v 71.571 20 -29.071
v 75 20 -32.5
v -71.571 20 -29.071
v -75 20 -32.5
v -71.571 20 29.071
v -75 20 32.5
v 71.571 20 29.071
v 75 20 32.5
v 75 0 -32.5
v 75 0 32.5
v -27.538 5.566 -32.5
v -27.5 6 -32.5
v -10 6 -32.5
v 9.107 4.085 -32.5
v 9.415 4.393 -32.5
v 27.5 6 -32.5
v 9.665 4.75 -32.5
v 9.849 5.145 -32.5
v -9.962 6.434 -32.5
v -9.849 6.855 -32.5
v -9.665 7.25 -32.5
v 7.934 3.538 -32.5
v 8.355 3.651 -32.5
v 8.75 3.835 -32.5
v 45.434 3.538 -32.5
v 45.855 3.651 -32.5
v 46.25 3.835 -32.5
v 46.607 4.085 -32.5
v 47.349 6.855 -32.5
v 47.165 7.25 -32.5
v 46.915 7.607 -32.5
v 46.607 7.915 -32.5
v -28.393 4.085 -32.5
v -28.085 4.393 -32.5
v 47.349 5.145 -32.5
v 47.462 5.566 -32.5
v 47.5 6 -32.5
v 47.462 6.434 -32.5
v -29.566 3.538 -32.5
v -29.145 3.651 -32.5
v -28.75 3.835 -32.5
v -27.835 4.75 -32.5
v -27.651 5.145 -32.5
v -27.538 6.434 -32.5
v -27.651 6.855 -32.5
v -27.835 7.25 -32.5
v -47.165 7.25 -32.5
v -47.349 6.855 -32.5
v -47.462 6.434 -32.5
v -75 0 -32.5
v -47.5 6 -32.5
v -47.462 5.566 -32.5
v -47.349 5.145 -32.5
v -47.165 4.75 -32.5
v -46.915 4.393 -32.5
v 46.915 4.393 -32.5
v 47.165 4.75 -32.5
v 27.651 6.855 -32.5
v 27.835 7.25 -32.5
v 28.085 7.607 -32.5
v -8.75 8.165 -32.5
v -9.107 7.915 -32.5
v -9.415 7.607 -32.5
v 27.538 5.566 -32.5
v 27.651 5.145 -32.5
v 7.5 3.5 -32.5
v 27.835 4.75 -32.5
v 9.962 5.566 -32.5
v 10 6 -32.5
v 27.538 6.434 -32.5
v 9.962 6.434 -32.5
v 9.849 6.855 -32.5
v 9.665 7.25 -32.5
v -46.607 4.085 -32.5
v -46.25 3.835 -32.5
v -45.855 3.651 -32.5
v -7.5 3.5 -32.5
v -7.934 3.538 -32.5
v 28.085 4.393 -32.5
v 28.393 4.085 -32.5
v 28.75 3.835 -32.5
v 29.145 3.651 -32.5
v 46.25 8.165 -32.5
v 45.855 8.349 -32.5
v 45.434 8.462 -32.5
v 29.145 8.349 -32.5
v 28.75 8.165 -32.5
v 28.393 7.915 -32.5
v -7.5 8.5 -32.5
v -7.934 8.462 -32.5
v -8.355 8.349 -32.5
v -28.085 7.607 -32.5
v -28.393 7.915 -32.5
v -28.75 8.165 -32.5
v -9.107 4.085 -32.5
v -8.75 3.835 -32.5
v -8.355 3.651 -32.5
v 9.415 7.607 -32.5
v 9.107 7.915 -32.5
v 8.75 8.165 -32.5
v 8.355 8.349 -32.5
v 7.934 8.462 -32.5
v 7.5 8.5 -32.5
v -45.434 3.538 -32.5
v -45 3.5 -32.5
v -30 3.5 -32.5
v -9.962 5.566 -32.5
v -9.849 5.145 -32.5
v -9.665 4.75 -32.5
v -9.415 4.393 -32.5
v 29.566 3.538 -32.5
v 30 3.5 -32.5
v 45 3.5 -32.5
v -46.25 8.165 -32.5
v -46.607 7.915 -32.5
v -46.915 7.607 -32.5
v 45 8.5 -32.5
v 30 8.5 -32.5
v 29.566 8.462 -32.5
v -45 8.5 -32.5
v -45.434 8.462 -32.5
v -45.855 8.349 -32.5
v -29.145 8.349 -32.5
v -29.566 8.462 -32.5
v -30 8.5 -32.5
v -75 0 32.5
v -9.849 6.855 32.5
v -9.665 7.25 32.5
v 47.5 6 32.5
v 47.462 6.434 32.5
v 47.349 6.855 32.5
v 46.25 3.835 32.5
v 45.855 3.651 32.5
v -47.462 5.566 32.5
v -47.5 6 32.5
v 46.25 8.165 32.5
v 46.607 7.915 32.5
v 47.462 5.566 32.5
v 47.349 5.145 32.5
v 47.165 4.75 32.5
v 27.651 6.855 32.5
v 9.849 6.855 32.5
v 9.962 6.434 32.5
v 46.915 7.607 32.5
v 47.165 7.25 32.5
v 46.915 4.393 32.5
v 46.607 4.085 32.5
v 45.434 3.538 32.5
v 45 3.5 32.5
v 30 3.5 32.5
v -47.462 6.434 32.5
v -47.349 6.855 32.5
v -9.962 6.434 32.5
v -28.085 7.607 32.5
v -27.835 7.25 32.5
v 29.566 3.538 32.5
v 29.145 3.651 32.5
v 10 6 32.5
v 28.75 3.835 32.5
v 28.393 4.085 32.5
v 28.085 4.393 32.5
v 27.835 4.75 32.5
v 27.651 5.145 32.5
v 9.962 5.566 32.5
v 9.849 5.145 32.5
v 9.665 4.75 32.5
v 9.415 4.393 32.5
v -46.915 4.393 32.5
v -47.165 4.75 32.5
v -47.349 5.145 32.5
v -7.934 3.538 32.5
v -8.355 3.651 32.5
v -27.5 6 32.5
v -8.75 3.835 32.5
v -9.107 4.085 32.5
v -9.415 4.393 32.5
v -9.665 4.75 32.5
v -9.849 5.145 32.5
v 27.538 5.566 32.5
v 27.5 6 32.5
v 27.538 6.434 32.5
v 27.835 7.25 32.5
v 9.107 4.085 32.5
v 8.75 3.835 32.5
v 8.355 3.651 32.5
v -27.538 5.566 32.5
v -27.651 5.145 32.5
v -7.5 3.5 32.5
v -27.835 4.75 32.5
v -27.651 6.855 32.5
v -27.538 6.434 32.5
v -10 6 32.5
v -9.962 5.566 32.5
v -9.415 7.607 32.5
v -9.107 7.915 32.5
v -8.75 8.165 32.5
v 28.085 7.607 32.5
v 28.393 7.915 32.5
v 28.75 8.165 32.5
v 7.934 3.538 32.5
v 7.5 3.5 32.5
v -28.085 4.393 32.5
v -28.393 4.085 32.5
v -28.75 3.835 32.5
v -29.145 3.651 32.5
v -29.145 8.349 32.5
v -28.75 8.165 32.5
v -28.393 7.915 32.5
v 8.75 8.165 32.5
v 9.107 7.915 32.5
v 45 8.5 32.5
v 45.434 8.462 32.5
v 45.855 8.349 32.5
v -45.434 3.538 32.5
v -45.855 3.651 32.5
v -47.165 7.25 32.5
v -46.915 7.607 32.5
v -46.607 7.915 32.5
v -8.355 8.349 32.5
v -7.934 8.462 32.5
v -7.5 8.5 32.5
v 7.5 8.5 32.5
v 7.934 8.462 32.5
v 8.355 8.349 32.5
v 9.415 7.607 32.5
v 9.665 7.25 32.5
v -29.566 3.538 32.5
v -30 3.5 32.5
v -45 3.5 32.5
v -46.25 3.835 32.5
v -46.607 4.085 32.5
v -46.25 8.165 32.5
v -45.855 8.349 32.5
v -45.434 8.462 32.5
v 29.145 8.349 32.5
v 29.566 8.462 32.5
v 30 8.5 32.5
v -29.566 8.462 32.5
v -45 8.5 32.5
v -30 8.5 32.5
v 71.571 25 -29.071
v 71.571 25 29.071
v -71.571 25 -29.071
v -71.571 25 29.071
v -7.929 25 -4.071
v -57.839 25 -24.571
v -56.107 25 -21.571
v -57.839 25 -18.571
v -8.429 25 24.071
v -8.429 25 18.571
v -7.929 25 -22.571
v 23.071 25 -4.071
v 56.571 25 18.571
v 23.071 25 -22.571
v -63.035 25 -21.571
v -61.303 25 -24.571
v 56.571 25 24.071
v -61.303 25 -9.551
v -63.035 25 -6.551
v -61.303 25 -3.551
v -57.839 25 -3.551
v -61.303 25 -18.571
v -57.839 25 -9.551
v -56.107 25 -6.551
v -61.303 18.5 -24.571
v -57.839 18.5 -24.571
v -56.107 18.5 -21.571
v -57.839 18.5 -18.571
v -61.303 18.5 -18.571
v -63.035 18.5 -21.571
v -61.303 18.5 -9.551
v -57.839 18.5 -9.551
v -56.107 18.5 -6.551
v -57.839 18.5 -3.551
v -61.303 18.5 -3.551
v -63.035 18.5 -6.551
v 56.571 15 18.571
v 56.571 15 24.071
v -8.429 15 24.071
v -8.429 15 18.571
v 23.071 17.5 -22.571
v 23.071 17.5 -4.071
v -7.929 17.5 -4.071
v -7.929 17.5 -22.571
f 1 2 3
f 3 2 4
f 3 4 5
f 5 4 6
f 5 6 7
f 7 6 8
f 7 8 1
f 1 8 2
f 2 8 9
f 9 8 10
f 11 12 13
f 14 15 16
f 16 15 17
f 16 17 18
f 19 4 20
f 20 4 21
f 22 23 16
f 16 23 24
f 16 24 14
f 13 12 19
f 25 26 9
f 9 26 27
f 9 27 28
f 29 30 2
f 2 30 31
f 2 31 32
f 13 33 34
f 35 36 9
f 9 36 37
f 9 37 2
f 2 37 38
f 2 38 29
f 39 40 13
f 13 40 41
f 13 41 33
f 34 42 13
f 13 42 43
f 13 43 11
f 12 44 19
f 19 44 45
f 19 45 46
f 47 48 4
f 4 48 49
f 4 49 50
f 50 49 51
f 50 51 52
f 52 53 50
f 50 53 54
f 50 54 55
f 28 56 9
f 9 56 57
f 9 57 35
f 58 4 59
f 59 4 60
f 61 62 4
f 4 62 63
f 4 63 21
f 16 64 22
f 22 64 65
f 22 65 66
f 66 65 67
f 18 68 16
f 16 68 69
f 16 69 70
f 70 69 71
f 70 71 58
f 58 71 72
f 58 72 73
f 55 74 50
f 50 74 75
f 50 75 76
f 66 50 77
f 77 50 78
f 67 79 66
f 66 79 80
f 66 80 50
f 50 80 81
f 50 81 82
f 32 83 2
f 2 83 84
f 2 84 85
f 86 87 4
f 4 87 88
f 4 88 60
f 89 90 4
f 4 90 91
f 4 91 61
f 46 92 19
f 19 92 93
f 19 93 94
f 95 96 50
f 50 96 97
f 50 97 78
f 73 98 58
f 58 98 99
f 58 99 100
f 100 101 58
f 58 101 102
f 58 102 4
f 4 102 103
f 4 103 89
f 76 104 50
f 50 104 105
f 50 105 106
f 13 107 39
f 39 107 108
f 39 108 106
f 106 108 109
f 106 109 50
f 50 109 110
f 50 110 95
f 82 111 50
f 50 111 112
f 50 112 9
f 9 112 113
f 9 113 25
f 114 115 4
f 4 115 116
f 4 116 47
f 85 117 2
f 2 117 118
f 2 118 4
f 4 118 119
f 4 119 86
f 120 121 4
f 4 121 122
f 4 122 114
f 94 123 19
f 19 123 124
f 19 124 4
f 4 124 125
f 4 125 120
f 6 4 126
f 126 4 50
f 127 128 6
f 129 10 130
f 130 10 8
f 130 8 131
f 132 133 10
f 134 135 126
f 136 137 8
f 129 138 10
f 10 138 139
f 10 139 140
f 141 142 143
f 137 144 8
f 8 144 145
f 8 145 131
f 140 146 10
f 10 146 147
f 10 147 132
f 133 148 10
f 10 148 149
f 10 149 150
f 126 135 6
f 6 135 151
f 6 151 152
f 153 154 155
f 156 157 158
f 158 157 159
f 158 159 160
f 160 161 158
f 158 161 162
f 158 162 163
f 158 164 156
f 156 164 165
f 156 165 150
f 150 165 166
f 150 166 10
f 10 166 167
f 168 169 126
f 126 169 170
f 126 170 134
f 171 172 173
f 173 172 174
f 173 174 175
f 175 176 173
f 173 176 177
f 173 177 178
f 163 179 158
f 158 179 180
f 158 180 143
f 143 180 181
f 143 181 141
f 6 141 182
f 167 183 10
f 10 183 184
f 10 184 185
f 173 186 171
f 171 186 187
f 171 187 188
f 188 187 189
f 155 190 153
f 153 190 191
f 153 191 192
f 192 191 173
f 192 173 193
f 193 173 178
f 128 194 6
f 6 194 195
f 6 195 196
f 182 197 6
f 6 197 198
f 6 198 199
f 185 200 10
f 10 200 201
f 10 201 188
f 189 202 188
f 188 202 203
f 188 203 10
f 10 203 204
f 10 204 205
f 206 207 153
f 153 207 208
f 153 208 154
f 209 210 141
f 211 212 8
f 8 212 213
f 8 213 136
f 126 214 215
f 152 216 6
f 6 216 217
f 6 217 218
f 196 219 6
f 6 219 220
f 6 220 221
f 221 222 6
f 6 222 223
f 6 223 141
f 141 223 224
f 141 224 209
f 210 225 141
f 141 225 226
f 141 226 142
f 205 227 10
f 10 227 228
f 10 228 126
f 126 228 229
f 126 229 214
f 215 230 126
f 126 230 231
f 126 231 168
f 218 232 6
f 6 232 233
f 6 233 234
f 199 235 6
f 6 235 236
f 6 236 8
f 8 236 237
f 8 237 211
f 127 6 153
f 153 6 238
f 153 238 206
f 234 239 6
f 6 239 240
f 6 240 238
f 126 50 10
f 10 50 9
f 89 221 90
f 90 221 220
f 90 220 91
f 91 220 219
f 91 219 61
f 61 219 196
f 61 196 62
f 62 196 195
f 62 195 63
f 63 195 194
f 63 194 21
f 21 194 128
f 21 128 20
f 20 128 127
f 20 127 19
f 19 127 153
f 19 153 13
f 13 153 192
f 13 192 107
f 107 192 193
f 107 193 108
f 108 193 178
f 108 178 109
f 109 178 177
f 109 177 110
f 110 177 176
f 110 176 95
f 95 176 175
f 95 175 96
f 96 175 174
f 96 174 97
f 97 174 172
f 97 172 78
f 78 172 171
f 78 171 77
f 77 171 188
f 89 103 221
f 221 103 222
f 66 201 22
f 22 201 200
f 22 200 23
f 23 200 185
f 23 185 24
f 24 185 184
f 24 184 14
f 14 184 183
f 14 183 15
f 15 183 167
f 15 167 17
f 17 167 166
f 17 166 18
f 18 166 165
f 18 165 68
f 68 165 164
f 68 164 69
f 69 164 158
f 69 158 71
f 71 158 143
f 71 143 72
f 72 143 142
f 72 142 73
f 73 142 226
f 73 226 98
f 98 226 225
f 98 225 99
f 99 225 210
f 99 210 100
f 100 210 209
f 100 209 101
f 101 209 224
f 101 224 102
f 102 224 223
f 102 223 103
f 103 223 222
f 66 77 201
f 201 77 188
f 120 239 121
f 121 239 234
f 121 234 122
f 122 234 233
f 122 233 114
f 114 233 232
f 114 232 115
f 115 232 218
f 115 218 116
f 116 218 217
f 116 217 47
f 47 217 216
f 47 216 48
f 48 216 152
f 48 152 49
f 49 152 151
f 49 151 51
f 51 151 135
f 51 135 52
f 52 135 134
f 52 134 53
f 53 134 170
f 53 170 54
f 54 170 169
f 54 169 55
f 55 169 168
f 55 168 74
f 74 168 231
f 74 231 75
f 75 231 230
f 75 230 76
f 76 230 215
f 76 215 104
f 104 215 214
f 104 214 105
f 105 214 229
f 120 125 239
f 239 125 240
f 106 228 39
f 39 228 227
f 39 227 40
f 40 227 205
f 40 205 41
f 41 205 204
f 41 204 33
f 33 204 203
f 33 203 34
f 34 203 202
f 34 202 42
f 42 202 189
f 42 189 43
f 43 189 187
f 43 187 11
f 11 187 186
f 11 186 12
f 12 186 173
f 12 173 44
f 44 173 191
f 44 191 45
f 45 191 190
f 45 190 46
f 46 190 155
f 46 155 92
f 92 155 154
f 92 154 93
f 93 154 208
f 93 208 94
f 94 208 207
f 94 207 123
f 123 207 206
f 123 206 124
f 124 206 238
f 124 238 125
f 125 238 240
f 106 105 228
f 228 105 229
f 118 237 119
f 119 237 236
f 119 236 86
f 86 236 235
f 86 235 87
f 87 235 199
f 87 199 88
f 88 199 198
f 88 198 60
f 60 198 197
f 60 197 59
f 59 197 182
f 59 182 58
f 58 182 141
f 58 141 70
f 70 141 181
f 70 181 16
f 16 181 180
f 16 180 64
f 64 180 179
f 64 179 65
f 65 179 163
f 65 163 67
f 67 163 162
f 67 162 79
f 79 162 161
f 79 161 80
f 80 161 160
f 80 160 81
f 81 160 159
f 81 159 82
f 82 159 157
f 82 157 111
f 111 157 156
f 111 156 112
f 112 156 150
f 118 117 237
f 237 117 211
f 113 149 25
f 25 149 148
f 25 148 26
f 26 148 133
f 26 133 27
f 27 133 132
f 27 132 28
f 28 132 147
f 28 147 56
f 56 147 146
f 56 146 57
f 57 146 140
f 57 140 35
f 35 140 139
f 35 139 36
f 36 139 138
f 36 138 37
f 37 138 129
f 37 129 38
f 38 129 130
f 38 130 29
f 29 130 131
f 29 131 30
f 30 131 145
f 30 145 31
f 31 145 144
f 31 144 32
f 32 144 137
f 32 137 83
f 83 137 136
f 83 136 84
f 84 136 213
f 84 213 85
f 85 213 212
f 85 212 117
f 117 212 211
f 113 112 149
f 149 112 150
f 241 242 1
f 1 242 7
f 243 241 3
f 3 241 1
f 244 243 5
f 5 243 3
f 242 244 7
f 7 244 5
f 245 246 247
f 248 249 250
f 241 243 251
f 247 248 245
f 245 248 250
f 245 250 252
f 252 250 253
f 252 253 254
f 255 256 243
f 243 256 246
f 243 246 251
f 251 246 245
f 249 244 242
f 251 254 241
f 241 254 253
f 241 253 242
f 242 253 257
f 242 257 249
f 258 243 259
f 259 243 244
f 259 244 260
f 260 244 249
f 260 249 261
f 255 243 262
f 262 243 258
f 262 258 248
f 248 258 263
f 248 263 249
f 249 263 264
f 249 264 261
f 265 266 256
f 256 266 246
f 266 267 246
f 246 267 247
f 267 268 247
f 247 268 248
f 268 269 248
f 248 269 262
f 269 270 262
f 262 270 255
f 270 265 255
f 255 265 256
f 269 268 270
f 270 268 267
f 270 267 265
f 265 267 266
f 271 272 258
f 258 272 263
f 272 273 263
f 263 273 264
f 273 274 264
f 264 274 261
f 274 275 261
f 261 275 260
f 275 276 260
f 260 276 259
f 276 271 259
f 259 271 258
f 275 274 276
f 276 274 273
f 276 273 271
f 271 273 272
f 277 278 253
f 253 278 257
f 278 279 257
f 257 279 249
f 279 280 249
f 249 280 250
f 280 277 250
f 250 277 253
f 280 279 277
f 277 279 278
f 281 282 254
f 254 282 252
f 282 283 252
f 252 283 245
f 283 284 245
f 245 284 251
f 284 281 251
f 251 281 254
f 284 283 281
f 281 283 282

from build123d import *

# Parameters (mm, degrees)
SKETCH1_W           = 150
SKETCH1_H           = 65
BOSS_EXTRUDE1_DEPTH = 20
CUT_EXTRUDE1_DEPTH  = 66
SKETCH3_W           = 143.142
SKETCH3_H           = 58.142
BOSS_EXTRUDE2_DEPTH = 5
CUT_EXTRUDE2_DEPTH  = 6.5
SKETCH6_W           = 65
SKETCH6_H           = 5.5
CUT_EXTRUDE3_DEPTH  = 10
SKETCH7_W           = 31
SKETCH7_H           = 18.5
CUT_EXTRUDE4_DEPTH  = 7.5


with BuildPart() as part:
    # Sketch1 → Boss-Extrude1 (new body)
    with BuildSketch(Plane(origin=(0, 0, 0), x_dir=(1, 0, 0), z_dir=(0, 1, 0))):
        Rectangle(SKETCH1_W, SKETCH1_H)
    extrude(amount=BOSS_EXTRUDE1_DEPTH)

    # Sketch2 → Cut-Extrude1 (cut, through all)
    with BuildSketch(Plane.XY.offset(32.5)):
        with BuildLine():
            Line((-7.5, 8.5), (7.5, 8.5))
            ThreePointArc((7.5, 8.5), (10, 6), (7.5, 3.5))
            Line((7.5, 3.5), (-7.5, 3.5))
            ThreePointArc((-7.5, 3.5), (-10, 6), (-7.5, 8.5))
        make_face()
        with BuildLine():
            Line((-45, 8.5), (-30, 8.5))
            ThreePointArc((-30, 8.5), (-27.5, 6), (-30, 3.5))
            Line((-30, 3.5), (-45, 3.5))
            ThreePointArc((-45, 3.5), (-47.5, 6), (-45, 8.5))
        make_face()
        with BuildLine():
            Line((30, 8.5), (45, 8.5))
            ThreePointArc((45, 8.5), (47.5, 6), (45, 3.5))
            Line((45, 3.5), (30, 3.5))
            ThreePointArc((30, 3.5), (27.5, 6), (30, 8.5))
        make_face()
    extrude(amount=-CUT_EXTRUDE1_DEPTH, mode=Mode.SUBTRACT)

    # Sketch3 → Boss-Extrude2 (add)
    with BuildSketch(Plane(origin=(0, 20, 0), x_dir=(1, 0, 0), z_dir=(0, 1, 0))):
        Rectangle(SKETCH3_W, SKETCH3_H)
    extrude(amount=BOSS_EXTRUDE2_DEPTH)

    # Sketch4 → Cut-Extrude2 (cut)
    with BuildSketch(Plane(origin=(0, 25, 0), x_dir=(1, 0, 0), z_dir=(0, 1, 0))):
        Polygon((-61.303050808, 24.571), (-63.035101615, 21.571), (-61.303050808, 18.571), (-57.838949192, 18.571), (-56.106898385, 21.571), (-57.838949192, 24.571), align=None)
        Polygon((-61.303050808, 9.551), (-63.035101615, 6.551), (-61.303050808, 3.551), (-57.838949192, 3.551), (-56.106898385, 6.551), (-57.838949192, 9.551), align=None)
    extrude(amount=-CUT_EXTRUDE2_DEPTH, mode=Mode.SUBTRACT)

    # Sketch6 → Cut-Extrude3 (cut)
    with BuildSketch(Plane(origin=(0, 25, 0), x_dir=(1, 0, 0), z_dir=(0, 1, 0))):
        with Locations((24.071, -21.321)):
            Rectangle(SKETCH6_W, SKETCH6_H)
    extrude(amount=-CUT_EXTRUDE3_DEPTH, mode=Mode.SUBTRACT)

    # Sketch7 → Cut-Extrude4 (cut)
    with BuildSketch(Plane(origin=(0, 25, 0), x_dir=(1, 0, 0), z_dir=(0, 1, 0))):
        with Locations((7.571, 13.321)):
            Rectangle(SKETCH7_W, SKETCH7_H)
    extrude(amount=-CUT_EXTRUDE4_DEPTH, mode=Mode.SUBTRACT)


solid = part.part
